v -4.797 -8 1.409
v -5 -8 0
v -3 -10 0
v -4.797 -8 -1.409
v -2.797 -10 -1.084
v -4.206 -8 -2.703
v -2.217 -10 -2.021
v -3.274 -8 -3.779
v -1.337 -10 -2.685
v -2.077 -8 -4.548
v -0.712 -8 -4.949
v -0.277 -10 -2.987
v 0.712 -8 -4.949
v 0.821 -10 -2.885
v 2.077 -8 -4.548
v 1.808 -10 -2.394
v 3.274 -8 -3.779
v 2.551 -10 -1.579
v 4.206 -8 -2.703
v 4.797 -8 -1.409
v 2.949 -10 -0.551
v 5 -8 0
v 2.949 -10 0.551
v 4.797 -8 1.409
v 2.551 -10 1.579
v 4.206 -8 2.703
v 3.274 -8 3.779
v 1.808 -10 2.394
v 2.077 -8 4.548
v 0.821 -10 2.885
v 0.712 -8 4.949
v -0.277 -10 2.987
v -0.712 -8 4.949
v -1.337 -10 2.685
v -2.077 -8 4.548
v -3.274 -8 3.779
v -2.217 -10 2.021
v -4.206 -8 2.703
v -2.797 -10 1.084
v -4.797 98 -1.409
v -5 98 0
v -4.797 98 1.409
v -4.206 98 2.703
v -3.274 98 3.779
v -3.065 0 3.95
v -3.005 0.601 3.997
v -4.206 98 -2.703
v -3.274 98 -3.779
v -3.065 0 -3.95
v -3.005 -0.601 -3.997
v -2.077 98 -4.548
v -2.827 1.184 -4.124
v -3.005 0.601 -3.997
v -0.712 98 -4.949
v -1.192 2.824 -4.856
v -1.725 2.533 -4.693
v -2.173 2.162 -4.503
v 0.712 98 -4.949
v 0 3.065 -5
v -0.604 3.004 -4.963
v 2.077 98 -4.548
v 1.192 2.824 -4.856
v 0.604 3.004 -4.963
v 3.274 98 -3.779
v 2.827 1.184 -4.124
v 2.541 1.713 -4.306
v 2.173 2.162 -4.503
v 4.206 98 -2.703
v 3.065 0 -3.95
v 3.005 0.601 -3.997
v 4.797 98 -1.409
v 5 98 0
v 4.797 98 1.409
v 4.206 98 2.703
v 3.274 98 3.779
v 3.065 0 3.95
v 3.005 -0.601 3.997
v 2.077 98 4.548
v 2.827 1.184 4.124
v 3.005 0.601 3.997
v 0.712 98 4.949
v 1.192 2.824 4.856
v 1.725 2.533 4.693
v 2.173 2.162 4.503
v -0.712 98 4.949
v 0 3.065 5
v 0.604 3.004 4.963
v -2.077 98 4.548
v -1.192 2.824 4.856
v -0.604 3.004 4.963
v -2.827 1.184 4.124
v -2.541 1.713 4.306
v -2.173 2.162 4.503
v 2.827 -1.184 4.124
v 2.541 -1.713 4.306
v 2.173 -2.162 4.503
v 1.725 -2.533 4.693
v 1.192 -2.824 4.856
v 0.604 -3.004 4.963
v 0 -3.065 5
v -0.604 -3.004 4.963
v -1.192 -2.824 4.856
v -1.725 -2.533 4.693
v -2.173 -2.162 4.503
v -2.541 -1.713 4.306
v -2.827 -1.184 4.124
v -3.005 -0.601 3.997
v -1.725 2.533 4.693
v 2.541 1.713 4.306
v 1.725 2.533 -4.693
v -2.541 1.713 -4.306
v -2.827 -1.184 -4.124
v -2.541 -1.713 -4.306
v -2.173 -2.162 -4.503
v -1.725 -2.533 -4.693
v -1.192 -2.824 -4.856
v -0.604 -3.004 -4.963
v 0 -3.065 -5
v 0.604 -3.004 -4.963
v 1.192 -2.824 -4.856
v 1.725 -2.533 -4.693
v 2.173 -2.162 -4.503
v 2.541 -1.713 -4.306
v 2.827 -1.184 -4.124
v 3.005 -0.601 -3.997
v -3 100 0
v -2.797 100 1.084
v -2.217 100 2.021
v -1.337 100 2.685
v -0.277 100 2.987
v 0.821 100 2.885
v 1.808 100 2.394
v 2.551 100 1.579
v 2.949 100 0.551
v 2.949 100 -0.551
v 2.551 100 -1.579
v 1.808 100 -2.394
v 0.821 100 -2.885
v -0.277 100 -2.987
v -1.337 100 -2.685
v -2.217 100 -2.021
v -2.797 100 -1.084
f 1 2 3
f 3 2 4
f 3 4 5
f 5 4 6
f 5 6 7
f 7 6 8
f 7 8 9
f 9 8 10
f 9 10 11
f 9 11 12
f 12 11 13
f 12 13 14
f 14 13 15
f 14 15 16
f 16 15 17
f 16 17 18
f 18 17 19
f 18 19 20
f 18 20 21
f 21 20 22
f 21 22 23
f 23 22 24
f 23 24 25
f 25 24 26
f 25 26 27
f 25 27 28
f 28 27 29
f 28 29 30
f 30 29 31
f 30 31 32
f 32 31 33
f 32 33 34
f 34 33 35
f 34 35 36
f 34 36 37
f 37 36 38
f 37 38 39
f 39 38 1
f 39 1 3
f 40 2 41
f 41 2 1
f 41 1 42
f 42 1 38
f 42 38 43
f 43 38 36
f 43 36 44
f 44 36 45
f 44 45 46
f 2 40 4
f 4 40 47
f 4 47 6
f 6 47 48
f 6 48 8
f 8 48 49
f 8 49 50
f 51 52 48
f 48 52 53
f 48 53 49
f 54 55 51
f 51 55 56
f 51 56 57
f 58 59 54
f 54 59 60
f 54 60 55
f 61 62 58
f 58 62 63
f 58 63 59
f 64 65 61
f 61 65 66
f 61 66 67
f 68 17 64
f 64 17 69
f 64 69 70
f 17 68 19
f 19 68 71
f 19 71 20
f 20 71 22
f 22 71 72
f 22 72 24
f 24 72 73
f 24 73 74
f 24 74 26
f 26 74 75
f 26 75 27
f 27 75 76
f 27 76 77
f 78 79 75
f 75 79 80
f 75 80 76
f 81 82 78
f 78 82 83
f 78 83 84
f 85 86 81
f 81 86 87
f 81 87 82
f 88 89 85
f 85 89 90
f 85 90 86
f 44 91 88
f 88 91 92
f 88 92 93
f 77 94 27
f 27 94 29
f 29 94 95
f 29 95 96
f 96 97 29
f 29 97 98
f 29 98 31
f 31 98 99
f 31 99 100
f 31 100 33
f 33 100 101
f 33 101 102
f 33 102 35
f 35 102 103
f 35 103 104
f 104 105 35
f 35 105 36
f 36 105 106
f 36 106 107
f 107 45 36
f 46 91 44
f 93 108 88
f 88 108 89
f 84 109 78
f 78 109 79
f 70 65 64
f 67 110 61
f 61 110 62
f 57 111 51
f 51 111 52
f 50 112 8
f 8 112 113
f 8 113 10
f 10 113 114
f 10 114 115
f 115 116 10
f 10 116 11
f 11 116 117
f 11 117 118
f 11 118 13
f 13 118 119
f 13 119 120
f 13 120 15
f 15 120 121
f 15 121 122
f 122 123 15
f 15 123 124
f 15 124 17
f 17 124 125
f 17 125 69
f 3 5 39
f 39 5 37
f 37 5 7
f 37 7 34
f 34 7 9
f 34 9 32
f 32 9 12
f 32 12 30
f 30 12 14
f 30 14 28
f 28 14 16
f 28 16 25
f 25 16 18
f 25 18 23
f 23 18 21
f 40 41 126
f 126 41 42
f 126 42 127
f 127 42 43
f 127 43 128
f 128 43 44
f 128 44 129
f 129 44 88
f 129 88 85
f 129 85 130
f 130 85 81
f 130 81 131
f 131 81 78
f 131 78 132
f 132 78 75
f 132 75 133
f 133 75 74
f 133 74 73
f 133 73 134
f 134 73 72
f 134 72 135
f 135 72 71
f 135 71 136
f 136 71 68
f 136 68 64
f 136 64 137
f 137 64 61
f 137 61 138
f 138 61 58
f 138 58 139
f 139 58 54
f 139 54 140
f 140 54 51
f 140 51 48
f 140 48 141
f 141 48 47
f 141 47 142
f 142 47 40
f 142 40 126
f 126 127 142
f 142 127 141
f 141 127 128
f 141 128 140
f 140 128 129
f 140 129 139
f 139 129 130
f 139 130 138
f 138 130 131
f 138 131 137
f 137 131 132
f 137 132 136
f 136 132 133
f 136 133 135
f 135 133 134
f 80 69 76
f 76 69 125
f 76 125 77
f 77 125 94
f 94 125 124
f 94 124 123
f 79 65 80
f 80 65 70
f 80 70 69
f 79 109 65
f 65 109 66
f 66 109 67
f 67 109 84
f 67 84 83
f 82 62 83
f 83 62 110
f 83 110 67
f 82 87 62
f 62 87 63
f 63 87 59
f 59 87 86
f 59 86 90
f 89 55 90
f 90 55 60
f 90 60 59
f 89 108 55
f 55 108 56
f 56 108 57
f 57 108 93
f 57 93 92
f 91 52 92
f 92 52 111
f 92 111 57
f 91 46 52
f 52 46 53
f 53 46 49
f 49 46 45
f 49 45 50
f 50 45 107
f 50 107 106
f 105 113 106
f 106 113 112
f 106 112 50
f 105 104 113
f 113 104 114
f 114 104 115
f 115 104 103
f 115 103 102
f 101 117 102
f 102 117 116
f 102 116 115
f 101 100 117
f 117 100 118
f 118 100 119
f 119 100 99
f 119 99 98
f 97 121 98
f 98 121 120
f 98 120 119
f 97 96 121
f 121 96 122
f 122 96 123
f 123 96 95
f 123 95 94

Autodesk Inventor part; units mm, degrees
ref_plane "YZ Plane" through (0, 0, 0) normal (1, 0, 0) x (0, 1, 0)
ref_plane "XZ Plane" through (0, 0, 0) normal (0, 1, 0) x (-1, 0, 0)
ref_plane "XY Plane" through (0, 0, 0) normal (0, 0, 1) x (1, 0, 0)
sketch "Sketch1" plane through (0, 0, 0) normal (0, 1, 0) x (-1, 0, 0)
  circle A0 centre (0, 0) radius 5
  dimension "d0" = 10
extrude "Extrusion1" add sketch "Sketch1" along normal blind 100 and the other way blind 10
sketch "Sketch2" plane through (0, 0, 0) normal (0, 0, 1) x (1, 0, 0)
  circle A0 centre (0, 0) radius 3.065
  dimension "d5" = 6.13
extrude "Extrusion2" cut sketch "Sketch2" along normal mid plane 100
chamfer "Chamfer1" distance 2 angle 45 2 edges at (5, 100, 0) (5, -10, 0)
properties part number "pendulum"
